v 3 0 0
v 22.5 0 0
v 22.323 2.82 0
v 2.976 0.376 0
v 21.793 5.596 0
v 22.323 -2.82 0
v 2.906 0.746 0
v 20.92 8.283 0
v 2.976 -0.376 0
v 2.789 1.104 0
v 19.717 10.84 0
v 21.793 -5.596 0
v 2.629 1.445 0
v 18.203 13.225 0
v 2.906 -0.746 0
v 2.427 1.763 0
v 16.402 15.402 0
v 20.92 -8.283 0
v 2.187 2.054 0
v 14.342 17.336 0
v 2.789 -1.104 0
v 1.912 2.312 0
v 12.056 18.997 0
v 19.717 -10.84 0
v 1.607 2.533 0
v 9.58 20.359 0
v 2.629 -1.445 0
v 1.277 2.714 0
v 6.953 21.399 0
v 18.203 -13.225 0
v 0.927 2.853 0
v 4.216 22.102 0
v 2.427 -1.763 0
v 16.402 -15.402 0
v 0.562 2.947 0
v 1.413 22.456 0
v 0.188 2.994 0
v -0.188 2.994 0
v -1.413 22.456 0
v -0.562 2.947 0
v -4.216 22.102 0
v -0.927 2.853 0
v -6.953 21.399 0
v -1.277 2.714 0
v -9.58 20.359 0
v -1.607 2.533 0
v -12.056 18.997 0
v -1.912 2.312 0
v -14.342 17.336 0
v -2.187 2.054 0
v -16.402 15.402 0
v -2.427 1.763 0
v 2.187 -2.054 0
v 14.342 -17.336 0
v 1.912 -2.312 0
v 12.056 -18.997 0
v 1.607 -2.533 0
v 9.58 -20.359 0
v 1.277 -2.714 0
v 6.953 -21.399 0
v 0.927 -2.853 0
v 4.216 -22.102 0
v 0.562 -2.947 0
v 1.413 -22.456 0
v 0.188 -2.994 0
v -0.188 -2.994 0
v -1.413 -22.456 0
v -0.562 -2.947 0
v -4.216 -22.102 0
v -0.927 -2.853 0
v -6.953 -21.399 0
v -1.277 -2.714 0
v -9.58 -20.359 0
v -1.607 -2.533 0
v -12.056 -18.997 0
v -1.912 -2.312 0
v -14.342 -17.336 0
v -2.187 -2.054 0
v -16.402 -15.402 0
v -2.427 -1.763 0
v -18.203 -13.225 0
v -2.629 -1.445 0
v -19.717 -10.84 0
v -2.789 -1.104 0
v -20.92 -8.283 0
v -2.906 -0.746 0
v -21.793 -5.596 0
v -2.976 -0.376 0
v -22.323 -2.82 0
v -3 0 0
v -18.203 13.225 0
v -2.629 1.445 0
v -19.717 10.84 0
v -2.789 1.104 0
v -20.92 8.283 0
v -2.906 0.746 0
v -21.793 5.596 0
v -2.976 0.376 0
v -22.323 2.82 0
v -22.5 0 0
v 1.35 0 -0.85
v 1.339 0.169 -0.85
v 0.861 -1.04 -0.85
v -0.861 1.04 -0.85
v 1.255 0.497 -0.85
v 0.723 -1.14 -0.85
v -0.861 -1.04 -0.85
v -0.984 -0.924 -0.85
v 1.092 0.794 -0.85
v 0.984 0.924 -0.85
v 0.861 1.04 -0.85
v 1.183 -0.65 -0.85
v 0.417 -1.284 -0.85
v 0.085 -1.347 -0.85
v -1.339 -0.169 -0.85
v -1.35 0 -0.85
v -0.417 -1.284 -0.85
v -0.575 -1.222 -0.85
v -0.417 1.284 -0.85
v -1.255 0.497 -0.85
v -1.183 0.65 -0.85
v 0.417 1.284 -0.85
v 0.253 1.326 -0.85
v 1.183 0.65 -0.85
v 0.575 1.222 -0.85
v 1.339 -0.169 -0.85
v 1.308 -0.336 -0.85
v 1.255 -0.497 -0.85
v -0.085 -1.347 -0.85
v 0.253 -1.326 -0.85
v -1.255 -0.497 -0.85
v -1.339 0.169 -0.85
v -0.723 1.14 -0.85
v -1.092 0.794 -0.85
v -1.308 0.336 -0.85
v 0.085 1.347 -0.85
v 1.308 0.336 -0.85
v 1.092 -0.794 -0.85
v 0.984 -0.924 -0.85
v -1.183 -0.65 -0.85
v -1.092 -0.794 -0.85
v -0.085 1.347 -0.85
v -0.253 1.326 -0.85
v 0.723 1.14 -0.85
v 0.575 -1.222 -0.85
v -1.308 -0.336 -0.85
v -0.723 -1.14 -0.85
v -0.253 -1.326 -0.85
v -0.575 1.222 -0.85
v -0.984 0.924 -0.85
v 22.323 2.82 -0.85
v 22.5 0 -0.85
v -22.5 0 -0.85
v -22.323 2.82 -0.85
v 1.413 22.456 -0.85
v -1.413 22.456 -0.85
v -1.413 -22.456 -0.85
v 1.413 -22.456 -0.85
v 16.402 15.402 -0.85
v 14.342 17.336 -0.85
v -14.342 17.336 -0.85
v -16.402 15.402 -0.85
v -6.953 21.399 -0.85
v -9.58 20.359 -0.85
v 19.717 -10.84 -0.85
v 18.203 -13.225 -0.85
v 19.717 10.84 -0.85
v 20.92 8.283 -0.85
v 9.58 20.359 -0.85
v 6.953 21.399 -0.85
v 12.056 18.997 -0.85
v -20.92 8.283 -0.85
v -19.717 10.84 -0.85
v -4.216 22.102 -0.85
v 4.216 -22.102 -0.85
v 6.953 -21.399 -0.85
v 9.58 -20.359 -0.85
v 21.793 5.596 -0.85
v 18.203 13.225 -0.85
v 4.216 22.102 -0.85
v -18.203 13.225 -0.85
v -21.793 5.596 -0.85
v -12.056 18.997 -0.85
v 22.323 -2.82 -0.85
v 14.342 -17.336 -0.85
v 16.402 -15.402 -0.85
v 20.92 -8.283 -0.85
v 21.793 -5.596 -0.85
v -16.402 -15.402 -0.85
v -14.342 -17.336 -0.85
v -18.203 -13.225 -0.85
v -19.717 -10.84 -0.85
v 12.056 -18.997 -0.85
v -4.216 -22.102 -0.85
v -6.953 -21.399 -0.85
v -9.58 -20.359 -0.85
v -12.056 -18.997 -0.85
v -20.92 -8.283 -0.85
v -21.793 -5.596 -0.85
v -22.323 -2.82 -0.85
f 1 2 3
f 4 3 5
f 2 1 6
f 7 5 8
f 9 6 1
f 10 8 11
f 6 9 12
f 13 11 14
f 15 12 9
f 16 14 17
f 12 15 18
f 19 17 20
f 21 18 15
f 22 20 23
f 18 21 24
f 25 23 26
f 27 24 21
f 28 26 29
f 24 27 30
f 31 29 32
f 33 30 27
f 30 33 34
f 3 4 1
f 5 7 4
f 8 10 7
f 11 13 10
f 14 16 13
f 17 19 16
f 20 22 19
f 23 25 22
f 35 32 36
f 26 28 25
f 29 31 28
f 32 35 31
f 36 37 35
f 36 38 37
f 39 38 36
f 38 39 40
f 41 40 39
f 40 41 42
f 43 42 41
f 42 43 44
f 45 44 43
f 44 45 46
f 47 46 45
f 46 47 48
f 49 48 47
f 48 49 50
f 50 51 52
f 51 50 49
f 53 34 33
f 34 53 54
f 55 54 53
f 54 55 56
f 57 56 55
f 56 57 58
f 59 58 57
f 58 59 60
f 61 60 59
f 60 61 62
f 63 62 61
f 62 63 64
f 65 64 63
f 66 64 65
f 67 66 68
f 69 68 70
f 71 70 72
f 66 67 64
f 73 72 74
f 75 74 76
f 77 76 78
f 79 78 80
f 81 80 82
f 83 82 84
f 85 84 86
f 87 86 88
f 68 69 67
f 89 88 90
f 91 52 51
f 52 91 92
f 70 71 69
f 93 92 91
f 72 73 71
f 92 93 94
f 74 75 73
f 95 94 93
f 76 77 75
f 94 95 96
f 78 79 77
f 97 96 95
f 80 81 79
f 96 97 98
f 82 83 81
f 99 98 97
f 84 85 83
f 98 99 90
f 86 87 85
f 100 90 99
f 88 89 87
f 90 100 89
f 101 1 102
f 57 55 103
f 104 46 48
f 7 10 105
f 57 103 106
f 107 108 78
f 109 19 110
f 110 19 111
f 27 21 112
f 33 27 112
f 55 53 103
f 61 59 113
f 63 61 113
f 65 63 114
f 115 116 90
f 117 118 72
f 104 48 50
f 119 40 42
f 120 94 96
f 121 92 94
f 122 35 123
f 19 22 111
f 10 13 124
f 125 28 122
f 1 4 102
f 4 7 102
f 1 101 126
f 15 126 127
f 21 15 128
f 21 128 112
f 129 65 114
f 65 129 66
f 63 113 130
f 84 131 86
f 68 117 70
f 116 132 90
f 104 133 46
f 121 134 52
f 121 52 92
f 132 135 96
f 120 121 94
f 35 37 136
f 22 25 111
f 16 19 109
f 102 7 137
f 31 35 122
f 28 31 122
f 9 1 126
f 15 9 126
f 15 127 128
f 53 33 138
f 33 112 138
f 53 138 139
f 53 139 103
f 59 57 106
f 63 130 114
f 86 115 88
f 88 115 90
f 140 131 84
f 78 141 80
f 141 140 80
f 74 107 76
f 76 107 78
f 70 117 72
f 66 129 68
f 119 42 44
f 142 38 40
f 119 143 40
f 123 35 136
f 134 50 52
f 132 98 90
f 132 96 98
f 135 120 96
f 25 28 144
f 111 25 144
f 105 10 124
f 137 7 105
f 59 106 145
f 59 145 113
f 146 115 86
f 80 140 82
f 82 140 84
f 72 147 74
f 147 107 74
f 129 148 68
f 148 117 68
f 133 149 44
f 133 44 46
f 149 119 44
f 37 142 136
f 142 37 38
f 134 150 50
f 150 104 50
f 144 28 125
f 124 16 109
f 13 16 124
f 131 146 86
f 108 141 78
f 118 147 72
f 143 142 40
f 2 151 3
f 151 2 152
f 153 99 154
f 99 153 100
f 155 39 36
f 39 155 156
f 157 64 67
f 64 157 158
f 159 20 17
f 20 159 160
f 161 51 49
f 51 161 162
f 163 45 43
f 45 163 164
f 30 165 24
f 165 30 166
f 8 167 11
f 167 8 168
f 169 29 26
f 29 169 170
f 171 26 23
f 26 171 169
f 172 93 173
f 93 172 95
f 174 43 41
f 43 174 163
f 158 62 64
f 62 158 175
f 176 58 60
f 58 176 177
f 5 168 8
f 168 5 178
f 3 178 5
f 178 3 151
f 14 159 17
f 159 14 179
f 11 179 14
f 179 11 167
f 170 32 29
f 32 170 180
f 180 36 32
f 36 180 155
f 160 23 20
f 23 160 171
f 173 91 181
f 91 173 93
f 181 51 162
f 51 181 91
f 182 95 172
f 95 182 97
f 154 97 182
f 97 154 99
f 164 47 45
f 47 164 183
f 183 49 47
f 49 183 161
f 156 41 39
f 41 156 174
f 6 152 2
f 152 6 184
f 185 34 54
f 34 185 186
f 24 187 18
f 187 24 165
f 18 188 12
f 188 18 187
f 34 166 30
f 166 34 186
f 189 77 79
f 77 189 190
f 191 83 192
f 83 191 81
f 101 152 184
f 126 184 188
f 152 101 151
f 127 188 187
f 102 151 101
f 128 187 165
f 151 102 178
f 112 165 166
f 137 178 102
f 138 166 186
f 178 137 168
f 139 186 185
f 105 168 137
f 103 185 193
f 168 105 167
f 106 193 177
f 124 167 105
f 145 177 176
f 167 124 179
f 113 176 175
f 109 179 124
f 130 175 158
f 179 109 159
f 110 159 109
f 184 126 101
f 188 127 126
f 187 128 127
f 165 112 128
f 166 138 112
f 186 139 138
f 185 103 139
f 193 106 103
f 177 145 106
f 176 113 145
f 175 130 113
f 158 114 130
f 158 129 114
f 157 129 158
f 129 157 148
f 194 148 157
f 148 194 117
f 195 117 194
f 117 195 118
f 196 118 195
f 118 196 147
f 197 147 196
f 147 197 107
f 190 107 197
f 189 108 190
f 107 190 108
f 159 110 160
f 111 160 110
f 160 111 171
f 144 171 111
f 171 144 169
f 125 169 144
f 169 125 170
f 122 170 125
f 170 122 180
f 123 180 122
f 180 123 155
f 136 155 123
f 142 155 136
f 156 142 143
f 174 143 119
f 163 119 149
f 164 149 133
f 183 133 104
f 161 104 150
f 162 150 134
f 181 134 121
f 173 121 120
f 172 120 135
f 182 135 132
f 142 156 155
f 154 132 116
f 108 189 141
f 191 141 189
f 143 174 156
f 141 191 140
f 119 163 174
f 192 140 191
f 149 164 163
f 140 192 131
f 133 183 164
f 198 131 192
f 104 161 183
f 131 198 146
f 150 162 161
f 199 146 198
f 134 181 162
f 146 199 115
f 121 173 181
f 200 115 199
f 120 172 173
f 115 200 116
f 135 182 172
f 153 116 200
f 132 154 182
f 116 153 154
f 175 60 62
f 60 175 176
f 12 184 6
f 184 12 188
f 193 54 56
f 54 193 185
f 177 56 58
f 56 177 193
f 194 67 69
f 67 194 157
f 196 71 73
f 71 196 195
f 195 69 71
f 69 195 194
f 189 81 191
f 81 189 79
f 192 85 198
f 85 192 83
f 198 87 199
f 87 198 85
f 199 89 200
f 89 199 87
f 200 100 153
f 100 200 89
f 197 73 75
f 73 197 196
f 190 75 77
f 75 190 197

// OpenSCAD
$fn = 50;

difference() {
	union() {
		translate(v = [0, 0, -0.85]) {
			cylinder(h = 0.85, r = 22.5);
		}
	}
	union() {
		translate(v = [0, 0, 0]) {
			rotate(a = [0, 0, 0]) {
				difference() {
					union() {
						translate(v = [0, 0, -3.85]) {
							cylinder(h = 3.85, r = 1.0);
						}
						translate(v = [0, 0, -0.85]) {
							cylinder(h = 0.85, r1 = 1.35, r2 = 3.0);
						}
						translate(v = [0, 0, -3.85]) {
							cylinder(h = 3.85, r = 1.35);
						}
						translate(v = [0, 0, -3.85]) {
							cylinder(h = 3.85, r = 1.0);
						}
					}
					union();
				}
			}
		}
	}
}
